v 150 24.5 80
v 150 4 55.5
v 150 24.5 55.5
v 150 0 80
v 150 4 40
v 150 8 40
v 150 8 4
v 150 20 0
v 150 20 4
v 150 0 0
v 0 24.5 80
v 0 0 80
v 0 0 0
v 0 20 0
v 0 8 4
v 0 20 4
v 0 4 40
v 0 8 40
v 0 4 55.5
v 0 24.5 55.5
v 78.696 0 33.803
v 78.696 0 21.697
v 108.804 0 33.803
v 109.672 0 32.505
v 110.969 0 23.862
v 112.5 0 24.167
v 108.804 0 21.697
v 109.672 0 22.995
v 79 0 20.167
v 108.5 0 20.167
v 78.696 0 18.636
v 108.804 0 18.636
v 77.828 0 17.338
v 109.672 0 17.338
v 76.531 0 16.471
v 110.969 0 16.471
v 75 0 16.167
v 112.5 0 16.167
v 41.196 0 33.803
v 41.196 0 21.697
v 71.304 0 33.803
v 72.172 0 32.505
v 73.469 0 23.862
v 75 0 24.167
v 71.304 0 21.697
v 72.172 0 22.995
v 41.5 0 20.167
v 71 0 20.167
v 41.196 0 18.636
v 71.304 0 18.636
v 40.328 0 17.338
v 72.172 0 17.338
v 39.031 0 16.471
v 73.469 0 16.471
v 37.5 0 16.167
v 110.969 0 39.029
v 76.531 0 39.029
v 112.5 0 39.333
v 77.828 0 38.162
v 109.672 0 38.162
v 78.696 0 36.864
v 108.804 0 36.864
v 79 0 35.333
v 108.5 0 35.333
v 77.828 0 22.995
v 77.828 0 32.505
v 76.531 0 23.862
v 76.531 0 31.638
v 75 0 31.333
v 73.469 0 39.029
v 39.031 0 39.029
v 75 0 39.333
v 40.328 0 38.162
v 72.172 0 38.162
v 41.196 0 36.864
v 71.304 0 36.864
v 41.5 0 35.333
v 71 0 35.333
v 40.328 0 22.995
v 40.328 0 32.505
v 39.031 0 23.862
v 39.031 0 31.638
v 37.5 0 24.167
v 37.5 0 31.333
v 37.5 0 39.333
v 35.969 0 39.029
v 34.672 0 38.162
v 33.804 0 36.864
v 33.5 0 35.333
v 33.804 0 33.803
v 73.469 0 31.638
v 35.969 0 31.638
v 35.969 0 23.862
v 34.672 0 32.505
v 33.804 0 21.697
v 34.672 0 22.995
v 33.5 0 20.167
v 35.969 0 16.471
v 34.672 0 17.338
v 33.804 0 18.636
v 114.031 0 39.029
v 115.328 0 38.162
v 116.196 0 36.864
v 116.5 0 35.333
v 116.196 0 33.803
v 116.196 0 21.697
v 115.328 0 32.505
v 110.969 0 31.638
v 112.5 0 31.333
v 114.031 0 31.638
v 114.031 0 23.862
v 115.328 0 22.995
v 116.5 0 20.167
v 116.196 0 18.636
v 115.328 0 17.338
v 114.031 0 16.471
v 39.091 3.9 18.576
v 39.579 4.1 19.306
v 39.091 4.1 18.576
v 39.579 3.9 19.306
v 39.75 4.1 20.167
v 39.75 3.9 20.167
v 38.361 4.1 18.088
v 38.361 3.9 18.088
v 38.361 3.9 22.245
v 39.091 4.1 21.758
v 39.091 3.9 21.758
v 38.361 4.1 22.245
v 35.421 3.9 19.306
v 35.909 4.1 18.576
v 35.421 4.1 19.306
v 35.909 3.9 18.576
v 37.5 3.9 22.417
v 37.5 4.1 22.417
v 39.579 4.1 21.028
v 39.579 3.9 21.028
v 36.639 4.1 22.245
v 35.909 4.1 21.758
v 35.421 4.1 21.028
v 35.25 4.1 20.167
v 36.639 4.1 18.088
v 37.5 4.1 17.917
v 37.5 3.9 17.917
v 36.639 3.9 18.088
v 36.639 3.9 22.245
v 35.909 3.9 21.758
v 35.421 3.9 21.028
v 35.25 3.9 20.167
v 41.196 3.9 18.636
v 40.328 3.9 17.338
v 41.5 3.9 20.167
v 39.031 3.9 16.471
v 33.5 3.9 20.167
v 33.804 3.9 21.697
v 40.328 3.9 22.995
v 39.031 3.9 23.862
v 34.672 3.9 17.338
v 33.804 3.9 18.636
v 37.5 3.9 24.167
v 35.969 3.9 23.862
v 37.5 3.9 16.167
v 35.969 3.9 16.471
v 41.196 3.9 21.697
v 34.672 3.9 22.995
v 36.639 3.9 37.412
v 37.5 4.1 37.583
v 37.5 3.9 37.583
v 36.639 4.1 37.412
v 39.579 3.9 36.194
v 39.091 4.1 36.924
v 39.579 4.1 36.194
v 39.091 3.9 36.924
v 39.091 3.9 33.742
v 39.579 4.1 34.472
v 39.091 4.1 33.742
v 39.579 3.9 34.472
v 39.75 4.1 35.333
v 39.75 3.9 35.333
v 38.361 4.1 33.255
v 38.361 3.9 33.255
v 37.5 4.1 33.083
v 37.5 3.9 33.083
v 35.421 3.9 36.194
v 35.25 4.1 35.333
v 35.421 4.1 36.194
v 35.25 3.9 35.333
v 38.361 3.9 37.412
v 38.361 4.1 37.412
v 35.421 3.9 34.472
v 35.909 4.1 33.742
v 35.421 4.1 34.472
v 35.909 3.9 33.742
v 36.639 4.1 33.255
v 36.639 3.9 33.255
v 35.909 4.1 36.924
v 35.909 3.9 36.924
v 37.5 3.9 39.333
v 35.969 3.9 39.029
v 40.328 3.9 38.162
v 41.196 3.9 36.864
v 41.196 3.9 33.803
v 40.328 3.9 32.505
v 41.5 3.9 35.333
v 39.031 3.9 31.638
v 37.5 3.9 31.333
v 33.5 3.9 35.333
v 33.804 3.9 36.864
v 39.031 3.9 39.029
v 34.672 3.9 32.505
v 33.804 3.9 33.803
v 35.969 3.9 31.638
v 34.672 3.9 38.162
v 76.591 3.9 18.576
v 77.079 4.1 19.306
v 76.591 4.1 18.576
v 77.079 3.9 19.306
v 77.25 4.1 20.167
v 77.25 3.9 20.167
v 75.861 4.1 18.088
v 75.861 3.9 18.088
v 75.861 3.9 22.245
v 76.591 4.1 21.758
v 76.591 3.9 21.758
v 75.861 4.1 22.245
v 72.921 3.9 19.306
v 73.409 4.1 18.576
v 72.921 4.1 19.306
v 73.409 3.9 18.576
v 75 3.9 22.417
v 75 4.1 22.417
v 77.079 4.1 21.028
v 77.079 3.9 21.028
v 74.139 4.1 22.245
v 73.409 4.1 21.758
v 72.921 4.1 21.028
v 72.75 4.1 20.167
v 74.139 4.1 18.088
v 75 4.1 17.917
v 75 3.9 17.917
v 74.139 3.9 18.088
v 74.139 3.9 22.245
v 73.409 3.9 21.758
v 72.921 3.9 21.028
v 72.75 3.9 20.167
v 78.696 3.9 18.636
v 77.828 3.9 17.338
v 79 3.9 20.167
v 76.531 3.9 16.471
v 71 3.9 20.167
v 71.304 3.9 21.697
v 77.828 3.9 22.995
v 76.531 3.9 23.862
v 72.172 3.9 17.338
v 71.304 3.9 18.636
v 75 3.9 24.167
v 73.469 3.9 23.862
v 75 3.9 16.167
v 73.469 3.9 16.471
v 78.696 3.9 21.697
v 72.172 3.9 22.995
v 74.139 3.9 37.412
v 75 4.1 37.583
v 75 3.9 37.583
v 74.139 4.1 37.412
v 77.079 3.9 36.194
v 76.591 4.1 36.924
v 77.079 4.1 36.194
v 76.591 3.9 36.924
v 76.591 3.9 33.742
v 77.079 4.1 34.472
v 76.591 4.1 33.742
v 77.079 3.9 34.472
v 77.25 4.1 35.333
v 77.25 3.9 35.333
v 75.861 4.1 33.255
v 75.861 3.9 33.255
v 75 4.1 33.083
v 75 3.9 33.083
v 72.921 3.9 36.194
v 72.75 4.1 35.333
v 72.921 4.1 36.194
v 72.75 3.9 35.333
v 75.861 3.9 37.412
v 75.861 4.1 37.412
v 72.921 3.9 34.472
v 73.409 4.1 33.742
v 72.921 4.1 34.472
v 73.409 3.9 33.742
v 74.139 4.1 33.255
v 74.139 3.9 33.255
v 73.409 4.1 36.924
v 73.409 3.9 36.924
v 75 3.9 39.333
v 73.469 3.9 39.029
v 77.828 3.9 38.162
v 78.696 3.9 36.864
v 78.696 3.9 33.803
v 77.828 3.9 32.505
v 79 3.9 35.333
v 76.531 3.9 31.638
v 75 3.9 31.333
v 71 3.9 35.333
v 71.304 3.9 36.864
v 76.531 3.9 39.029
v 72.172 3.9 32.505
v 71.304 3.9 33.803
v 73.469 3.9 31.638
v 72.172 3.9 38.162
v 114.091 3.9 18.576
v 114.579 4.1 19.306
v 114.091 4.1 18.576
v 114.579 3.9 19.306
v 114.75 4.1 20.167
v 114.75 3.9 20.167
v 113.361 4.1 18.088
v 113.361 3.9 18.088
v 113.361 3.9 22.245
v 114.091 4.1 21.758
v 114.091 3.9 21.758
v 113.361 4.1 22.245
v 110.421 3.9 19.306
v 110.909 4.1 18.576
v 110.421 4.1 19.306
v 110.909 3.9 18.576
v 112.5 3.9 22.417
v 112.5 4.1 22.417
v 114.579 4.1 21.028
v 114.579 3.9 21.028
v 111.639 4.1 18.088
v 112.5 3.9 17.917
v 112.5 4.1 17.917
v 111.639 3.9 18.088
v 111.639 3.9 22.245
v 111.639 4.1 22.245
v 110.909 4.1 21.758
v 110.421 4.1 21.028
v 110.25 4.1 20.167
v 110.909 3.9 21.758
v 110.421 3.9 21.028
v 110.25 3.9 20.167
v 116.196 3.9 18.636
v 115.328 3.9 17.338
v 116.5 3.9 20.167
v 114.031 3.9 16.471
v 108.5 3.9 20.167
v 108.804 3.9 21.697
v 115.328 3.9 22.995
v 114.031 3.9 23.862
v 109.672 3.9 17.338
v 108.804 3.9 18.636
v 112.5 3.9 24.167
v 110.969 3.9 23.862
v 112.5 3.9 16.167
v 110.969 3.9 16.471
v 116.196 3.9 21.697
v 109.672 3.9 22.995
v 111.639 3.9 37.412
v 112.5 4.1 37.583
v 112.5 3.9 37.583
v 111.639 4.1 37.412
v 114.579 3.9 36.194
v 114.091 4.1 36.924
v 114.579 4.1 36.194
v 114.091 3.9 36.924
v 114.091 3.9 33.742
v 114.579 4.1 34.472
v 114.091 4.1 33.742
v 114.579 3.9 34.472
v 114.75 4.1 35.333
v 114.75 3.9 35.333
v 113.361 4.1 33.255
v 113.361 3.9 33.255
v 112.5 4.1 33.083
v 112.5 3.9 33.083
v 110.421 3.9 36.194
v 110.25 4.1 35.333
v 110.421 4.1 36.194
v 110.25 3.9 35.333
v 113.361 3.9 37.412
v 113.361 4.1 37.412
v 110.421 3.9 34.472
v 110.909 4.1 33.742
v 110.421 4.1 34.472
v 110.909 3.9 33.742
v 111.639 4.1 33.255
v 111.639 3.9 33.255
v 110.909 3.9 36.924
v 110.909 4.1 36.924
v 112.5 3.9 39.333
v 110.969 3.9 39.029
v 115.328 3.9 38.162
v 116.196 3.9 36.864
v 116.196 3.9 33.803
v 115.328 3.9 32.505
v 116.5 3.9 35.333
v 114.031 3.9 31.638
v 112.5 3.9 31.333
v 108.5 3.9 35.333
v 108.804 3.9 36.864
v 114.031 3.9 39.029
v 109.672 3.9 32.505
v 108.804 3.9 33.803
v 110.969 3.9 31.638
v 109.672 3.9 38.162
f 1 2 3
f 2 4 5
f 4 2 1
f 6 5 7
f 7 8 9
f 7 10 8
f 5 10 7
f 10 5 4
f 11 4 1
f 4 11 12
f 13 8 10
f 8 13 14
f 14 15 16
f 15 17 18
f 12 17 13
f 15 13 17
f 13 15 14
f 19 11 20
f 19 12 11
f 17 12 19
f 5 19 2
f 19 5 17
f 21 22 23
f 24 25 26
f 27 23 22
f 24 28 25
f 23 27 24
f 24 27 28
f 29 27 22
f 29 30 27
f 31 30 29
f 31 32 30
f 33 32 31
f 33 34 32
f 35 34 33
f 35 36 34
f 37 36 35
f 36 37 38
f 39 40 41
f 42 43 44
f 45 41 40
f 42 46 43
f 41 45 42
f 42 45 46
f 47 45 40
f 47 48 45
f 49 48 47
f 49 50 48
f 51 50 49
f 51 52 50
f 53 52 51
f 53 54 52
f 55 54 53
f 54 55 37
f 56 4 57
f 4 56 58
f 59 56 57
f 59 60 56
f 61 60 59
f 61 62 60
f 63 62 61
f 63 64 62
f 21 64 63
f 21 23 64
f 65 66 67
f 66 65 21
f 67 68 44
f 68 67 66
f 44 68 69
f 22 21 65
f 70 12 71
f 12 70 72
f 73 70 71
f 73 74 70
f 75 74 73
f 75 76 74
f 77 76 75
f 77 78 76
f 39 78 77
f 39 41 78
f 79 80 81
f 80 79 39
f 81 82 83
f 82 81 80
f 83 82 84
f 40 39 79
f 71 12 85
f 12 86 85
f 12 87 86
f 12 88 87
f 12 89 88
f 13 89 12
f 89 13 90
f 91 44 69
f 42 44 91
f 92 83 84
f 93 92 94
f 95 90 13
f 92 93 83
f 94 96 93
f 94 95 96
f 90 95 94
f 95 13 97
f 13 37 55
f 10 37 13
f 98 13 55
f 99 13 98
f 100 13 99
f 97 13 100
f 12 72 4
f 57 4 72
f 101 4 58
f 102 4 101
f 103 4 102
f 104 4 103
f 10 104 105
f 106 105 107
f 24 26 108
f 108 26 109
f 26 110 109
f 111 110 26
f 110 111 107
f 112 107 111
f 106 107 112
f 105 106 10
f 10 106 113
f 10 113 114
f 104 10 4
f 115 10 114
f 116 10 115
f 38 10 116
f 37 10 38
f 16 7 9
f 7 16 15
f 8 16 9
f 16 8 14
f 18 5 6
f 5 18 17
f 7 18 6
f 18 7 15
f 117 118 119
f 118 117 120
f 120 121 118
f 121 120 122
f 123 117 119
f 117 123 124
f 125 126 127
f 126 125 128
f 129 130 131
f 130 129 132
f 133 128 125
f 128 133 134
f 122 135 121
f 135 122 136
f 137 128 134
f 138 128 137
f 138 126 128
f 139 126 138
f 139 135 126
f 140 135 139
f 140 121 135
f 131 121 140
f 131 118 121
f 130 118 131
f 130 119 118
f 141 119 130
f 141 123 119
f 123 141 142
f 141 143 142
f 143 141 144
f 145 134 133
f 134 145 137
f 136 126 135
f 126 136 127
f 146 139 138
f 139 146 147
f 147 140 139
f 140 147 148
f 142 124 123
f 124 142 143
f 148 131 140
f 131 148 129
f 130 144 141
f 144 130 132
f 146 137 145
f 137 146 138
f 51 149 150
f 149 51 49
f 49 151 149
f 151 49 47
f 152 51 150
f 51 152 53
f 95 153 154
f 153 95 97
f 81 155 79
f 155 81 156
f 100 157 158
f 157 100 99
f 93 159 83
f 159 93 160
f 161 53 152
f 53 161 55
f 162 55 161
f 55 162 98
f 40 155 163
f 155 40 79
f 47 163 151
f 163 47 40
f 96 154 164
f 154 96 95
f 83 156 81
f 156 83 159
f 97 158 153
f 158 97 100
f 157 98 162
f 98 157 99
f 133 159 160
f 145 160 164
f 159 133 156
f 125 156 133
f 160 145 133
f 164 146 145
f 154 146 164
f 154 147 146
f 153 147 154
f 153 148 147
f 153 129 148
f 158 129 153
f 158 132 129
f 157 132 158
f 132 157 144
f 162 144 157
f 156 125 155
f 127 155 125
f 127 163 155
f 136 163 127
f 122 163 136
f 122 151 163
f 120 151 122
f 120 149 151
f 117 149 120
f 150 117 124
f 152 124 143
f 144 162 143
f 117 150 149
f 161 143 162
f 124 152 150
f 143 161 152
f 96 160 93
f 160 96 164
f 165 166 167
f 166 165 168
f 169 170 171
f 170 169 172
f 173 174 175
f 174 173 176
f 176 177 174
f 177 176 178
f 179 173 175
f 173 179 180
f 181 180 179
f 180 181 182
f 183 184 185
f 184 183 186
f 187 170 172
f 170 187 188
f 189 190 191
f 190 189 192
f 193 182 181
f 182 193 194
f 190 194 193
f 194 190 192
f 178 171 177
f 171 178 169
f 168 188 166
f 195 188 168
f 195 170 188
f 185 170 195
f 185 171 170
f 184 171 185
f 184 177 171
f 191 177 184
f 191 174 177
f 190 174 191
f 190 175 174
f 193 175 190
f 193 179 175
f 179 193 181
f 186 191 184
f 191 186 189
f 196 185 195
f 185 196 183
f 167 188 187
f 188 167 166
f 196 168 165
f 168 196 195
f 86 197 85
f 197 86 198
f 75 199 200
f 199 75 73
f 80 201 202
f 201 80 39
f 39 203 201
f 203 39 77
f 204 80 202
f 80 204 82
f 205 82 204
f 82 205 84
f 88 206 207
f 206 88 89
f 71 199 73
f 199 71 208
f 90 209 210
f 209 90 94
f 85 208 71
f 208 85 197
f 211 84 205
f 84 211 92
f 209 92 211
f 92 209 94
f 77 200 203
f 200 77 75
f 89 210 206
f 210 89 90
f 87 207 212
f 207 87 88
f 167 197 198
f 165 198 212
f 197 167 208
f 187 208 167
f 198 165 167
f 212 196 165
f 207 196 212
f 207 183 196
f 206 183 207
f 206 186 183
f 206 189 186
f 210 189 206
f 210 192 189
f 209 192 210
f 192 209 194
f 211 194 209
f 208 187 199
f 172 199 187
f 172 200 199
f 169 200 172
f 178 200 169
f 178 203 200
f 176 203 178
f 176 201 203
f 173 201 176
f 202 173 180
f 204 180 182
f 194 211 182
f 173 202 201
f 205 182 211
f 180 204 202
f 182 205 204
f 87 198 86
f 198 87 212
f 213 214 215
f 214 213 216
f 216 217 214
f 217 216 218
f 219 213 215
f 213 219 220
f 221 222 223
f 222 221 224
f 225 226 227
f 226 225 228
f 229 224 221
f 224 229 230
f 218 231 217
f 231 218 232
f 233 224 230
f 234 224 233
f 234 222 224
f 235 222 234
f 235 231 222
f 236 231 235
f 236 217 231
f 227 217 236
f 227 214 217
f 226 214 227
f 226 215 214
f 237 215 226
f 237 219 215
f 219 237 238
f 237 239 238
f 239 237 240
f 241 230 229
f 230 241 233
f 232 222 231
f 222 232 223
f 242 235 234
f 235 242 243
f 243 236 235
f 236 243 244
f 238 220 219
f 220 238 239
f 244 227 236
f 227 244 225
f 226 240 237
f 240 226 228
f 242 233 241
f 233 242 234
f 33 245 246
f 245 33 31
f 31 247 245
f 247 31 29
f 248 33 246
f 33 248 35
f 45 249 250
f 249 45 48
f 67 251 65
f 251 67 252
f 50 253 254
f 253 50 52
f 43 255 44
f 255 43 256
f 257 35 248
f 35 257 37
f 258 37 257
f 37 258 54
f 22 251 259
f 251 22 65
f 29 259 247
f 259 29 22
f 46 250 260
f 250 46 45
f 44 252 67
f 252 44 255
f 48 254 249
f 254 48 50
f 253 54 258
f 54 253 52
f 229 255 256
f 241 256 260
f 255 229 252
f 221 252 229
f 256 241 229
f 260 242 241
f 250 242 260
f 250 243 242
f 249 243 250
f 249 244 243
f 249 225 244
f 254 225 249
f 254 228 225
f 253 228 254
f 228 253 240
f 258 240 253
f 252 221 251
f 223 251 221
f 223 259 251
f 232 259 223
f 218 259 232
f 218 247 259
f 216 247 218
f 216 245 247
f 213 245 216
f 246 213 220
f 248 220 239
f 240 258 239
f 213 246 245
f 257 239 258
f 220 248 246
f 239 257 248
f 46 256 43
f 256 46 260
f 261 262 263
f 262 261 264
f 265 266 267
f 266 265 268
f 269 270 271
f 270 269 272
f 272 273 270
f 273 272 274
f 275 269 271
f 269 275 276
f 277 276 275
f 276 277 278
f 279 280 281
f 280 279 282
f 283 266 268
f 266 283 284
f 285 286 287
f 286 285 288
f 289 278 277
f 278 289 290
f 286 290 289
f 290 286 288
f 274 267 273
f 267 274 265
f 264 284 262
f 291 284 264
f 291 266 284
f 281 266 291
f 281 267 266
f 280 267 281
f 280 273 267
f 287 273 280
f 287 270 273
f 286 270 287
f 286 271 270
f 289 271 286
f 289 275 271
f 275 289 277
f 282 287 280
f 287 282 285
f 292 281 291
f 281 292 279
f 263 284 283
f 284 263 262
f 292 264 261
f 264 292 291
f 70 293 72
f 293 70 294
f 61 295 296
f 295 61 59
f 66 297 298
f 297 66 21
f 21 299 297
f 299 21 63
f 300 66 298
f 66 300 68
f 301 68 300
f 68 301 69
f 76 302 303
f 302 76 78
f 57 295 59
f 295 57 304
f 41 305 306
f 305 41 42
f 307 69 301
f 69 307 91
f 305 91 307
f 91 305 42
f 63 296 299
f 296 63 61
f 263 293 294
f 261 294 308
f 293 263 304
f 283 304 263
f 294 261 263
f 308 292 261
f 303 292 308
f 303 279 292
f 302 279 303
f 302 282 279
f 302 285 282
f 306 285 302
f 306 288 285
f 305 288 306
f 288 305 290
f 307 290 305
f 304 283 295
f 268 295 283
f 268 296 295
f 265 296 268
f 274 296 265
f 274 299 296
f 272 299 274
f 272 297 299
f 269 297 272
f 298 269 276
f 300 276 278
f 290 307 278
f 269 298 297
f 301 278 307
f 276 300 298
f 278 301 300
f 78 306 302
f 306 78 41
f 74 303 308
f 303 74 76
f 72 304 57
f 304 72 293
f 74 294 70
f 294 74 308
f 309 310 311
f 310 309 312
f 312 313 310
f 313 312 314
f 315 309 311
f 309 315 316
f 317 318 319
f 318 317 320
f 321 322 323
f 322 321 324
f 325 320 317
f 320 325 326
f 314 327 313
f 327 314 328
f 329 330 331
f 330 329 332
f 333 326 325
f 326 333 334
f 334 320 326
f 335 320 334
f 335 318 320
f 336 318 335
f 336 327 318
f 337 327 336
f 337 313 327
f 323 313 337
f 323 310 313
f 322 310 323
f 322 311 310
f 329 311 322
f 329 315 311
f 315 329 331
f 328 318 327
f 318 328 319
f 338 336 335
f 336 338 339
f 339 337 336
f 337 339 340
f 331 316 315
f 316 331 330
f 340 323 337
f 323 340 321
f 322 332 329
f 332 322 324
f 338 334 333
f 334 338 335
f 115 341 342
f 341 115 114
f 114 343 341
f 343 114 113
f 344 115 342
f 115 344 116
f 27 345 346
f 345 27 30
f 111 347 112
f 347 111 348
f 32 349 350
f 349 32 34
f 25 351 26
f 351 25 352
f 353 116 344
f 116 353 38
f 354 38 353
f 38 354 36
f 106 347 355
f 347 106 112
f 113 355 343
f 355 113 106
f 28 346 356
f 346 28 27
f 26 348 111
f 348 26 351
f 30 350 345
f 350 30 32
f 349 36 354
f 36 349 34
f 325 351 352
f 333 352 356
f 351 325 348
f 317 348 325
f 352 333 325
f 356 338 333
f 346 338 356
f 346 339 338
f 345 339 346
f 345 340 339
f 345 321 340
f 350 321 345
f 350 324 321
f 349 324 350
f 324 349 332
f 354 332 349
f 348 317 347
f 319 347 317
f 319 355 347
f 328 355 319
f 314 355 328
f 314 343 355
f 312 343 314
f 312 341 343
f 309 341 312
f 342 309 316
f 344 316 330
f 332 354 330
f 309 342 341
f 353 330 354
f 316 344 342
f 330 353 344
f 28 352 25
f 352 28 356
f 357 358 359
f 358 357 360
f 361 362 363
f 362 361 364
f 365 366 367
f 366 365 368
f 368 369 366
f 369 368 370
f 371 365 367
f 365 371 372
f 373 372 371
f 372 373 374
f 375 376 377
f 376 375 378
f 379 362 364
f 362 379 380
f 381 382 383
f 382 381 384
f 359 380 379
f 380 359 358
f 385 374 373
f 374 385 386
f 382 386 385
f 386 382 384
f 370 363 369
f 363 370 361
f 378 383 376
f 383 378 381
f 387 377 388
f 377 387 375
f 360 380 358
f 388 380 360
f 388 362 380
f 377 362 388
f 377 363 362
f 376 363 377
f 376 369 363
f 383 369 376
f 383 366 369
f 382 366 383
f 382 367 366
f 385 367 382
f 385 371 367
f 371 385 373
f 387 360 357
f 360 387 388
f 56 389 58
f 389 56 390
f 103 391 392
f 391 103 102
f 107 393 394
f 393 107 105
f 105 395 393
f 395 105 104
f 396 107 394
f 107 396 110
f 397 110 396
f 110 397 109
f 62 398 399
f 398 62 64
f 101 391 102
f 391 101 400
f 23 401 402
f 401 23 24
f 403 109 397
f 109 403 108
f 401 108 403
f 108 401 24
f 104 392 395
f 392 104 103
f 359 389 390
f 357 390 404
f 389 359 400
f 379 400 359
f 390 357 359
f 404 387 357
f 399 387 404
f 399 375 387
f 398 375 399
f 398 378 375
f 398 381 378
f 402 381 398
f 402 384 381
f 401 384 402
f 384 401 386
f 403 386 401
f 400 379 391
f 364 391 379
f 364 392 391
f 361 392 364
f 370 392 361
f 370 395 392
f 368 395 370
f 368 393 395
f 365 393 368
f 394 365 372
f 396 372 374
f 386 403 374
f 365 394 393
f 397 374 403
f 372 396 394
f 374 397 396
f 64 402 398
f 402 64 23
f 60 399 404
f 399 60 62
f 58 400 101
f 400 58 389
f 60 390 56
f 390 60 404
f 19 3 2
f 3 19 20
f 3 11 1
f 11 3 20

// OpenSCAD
// ============================================================
// French Cleat — Blank Holder Strip (Hook Rail)
// ============================================================
// A flat mounting strip that sits on French cleat wall strips.
// Add your own hooks, bins, or attachments in OpenSCAD, or
// use it as a baseplate for custom tool holders.
//
// Also generates a simple J-hook variant for hanging items
// by a hole, loop, or trigger guard.
//
// French cleat: 19mm (3/4") ply, 45° standard
// ============================================================

// ---- FRENCH CLEAT (don't change) ----
cleat_material  = 19;   // Wall strip thickness (mm)
hook_clearance  = 1.5;  // Hook slide gap (mm)
wall_t          = 4;    // Structural wall thickness (mm)

// ---- STRIP DIMENSIONS ----
strip_w         = 150;  // Width of the holder strip (mm) — covers one or more cleat slots
strip_h         = 80;   // Height of the strip (mm)
strip_d         = 20;   // Depth from wall to front face (mm)

// ---- ATTACHMENT POINTS (screw holes for adding custom holders) ----
add_screw_holes = true; // true = add M4 counterbore holes for attaching hooks/bins
screw_dia       = 4.5;  // M4 clearance hole (mm)
cbore_dia       = 8.0;  // M4 counterbore diameter (mm)
cbore_depth     = 4.0;  // Counterbore depth (mm)
screw_rows      = 2;    // Rows of screw holes
screw_cols      = 3;    // Columns of screw holes

// ---- COMPUTED ----
hook_h          = cleat_material + hook_clearance + wall_t;
hook_start_z    = strip_h - hook_h;
screw_margin_x  = strip_w / (screw_cols + 1);
screw_margin_z  = (strip_h - hook_h - 10) / (screw_rows + 1);

// ============================================================
// MODULES
// ============================================================

module cleat_hook() {
    difference() {
        cube([strip_w, cleat_material + wall_t + hook_clearance, hook_h]);
        translate([-0.1, wall_t, -0.1])
        rotate([0, 90, 0])
        linear_extrude(strip_w + 0.2)
        polygon([
            [0, 0],
            [cleat_material + hook_clearance, 0],
            [cleat_material + hook_clearance, hook_h + 0.2],
            [0, hook_h * 0.45]
        ]);
    }
}

module strip_body() {
    difference() {
        union() {
            // Back plate
            cube([strip_w, wall_t, strip_h]);
            // Shelf — flat surface to attach bins/hooks to
            translate([0, wall_t, 0])
                cube([strip_w, strip_d - wall_t, wall_t]);
            // Bottom reinforcement rib
            translate([0, wall_t, 0])
                cube([strip_w, wall_t, strip_h * 0.5]);
        }

        // Screw holes for attaching add-on bins/hooks
        if (add_screw_holes) {
            for (col = [1 : screw_cols]) {
                for (row = [1 : screw_rows]) {
                    sx = screw_margin_x * col;
                    sz = 5 + screw_margin_z * row;
                    // Through hole
                    translate([sx, -0.1, sz])
                    rotate([-90, 0, 0])
                        cylinder(d=screw_dia, h=wall_t + 0.2, $fn=16);
                    // Counterbore (from back)
                    translate([sx, -0.1, sz])
                    rotate([-90, 0, 0])
                        cylinder(d=cbore_dia, h=cbore_depth, $fn=16);
                }
            }
        }
    }
}

// ============================================================
// ASSEMBLY
// ============================================================
union() {
    strip_body();
    translate([0, 0, hook_start_z])
        cleat_hook();
}

// ============================================================
// PRINT SETTINGS
// ============================================================
// Orientation : back plate flat on bed
// Material    : PLA+ or PETG
// Infill      : 20-25%  (mostly flat plate, doesn't need much)
// Supports    : none
// Use M4×12 screws + hex nuts to attach bins/hooks to the strip
// ============================================================
